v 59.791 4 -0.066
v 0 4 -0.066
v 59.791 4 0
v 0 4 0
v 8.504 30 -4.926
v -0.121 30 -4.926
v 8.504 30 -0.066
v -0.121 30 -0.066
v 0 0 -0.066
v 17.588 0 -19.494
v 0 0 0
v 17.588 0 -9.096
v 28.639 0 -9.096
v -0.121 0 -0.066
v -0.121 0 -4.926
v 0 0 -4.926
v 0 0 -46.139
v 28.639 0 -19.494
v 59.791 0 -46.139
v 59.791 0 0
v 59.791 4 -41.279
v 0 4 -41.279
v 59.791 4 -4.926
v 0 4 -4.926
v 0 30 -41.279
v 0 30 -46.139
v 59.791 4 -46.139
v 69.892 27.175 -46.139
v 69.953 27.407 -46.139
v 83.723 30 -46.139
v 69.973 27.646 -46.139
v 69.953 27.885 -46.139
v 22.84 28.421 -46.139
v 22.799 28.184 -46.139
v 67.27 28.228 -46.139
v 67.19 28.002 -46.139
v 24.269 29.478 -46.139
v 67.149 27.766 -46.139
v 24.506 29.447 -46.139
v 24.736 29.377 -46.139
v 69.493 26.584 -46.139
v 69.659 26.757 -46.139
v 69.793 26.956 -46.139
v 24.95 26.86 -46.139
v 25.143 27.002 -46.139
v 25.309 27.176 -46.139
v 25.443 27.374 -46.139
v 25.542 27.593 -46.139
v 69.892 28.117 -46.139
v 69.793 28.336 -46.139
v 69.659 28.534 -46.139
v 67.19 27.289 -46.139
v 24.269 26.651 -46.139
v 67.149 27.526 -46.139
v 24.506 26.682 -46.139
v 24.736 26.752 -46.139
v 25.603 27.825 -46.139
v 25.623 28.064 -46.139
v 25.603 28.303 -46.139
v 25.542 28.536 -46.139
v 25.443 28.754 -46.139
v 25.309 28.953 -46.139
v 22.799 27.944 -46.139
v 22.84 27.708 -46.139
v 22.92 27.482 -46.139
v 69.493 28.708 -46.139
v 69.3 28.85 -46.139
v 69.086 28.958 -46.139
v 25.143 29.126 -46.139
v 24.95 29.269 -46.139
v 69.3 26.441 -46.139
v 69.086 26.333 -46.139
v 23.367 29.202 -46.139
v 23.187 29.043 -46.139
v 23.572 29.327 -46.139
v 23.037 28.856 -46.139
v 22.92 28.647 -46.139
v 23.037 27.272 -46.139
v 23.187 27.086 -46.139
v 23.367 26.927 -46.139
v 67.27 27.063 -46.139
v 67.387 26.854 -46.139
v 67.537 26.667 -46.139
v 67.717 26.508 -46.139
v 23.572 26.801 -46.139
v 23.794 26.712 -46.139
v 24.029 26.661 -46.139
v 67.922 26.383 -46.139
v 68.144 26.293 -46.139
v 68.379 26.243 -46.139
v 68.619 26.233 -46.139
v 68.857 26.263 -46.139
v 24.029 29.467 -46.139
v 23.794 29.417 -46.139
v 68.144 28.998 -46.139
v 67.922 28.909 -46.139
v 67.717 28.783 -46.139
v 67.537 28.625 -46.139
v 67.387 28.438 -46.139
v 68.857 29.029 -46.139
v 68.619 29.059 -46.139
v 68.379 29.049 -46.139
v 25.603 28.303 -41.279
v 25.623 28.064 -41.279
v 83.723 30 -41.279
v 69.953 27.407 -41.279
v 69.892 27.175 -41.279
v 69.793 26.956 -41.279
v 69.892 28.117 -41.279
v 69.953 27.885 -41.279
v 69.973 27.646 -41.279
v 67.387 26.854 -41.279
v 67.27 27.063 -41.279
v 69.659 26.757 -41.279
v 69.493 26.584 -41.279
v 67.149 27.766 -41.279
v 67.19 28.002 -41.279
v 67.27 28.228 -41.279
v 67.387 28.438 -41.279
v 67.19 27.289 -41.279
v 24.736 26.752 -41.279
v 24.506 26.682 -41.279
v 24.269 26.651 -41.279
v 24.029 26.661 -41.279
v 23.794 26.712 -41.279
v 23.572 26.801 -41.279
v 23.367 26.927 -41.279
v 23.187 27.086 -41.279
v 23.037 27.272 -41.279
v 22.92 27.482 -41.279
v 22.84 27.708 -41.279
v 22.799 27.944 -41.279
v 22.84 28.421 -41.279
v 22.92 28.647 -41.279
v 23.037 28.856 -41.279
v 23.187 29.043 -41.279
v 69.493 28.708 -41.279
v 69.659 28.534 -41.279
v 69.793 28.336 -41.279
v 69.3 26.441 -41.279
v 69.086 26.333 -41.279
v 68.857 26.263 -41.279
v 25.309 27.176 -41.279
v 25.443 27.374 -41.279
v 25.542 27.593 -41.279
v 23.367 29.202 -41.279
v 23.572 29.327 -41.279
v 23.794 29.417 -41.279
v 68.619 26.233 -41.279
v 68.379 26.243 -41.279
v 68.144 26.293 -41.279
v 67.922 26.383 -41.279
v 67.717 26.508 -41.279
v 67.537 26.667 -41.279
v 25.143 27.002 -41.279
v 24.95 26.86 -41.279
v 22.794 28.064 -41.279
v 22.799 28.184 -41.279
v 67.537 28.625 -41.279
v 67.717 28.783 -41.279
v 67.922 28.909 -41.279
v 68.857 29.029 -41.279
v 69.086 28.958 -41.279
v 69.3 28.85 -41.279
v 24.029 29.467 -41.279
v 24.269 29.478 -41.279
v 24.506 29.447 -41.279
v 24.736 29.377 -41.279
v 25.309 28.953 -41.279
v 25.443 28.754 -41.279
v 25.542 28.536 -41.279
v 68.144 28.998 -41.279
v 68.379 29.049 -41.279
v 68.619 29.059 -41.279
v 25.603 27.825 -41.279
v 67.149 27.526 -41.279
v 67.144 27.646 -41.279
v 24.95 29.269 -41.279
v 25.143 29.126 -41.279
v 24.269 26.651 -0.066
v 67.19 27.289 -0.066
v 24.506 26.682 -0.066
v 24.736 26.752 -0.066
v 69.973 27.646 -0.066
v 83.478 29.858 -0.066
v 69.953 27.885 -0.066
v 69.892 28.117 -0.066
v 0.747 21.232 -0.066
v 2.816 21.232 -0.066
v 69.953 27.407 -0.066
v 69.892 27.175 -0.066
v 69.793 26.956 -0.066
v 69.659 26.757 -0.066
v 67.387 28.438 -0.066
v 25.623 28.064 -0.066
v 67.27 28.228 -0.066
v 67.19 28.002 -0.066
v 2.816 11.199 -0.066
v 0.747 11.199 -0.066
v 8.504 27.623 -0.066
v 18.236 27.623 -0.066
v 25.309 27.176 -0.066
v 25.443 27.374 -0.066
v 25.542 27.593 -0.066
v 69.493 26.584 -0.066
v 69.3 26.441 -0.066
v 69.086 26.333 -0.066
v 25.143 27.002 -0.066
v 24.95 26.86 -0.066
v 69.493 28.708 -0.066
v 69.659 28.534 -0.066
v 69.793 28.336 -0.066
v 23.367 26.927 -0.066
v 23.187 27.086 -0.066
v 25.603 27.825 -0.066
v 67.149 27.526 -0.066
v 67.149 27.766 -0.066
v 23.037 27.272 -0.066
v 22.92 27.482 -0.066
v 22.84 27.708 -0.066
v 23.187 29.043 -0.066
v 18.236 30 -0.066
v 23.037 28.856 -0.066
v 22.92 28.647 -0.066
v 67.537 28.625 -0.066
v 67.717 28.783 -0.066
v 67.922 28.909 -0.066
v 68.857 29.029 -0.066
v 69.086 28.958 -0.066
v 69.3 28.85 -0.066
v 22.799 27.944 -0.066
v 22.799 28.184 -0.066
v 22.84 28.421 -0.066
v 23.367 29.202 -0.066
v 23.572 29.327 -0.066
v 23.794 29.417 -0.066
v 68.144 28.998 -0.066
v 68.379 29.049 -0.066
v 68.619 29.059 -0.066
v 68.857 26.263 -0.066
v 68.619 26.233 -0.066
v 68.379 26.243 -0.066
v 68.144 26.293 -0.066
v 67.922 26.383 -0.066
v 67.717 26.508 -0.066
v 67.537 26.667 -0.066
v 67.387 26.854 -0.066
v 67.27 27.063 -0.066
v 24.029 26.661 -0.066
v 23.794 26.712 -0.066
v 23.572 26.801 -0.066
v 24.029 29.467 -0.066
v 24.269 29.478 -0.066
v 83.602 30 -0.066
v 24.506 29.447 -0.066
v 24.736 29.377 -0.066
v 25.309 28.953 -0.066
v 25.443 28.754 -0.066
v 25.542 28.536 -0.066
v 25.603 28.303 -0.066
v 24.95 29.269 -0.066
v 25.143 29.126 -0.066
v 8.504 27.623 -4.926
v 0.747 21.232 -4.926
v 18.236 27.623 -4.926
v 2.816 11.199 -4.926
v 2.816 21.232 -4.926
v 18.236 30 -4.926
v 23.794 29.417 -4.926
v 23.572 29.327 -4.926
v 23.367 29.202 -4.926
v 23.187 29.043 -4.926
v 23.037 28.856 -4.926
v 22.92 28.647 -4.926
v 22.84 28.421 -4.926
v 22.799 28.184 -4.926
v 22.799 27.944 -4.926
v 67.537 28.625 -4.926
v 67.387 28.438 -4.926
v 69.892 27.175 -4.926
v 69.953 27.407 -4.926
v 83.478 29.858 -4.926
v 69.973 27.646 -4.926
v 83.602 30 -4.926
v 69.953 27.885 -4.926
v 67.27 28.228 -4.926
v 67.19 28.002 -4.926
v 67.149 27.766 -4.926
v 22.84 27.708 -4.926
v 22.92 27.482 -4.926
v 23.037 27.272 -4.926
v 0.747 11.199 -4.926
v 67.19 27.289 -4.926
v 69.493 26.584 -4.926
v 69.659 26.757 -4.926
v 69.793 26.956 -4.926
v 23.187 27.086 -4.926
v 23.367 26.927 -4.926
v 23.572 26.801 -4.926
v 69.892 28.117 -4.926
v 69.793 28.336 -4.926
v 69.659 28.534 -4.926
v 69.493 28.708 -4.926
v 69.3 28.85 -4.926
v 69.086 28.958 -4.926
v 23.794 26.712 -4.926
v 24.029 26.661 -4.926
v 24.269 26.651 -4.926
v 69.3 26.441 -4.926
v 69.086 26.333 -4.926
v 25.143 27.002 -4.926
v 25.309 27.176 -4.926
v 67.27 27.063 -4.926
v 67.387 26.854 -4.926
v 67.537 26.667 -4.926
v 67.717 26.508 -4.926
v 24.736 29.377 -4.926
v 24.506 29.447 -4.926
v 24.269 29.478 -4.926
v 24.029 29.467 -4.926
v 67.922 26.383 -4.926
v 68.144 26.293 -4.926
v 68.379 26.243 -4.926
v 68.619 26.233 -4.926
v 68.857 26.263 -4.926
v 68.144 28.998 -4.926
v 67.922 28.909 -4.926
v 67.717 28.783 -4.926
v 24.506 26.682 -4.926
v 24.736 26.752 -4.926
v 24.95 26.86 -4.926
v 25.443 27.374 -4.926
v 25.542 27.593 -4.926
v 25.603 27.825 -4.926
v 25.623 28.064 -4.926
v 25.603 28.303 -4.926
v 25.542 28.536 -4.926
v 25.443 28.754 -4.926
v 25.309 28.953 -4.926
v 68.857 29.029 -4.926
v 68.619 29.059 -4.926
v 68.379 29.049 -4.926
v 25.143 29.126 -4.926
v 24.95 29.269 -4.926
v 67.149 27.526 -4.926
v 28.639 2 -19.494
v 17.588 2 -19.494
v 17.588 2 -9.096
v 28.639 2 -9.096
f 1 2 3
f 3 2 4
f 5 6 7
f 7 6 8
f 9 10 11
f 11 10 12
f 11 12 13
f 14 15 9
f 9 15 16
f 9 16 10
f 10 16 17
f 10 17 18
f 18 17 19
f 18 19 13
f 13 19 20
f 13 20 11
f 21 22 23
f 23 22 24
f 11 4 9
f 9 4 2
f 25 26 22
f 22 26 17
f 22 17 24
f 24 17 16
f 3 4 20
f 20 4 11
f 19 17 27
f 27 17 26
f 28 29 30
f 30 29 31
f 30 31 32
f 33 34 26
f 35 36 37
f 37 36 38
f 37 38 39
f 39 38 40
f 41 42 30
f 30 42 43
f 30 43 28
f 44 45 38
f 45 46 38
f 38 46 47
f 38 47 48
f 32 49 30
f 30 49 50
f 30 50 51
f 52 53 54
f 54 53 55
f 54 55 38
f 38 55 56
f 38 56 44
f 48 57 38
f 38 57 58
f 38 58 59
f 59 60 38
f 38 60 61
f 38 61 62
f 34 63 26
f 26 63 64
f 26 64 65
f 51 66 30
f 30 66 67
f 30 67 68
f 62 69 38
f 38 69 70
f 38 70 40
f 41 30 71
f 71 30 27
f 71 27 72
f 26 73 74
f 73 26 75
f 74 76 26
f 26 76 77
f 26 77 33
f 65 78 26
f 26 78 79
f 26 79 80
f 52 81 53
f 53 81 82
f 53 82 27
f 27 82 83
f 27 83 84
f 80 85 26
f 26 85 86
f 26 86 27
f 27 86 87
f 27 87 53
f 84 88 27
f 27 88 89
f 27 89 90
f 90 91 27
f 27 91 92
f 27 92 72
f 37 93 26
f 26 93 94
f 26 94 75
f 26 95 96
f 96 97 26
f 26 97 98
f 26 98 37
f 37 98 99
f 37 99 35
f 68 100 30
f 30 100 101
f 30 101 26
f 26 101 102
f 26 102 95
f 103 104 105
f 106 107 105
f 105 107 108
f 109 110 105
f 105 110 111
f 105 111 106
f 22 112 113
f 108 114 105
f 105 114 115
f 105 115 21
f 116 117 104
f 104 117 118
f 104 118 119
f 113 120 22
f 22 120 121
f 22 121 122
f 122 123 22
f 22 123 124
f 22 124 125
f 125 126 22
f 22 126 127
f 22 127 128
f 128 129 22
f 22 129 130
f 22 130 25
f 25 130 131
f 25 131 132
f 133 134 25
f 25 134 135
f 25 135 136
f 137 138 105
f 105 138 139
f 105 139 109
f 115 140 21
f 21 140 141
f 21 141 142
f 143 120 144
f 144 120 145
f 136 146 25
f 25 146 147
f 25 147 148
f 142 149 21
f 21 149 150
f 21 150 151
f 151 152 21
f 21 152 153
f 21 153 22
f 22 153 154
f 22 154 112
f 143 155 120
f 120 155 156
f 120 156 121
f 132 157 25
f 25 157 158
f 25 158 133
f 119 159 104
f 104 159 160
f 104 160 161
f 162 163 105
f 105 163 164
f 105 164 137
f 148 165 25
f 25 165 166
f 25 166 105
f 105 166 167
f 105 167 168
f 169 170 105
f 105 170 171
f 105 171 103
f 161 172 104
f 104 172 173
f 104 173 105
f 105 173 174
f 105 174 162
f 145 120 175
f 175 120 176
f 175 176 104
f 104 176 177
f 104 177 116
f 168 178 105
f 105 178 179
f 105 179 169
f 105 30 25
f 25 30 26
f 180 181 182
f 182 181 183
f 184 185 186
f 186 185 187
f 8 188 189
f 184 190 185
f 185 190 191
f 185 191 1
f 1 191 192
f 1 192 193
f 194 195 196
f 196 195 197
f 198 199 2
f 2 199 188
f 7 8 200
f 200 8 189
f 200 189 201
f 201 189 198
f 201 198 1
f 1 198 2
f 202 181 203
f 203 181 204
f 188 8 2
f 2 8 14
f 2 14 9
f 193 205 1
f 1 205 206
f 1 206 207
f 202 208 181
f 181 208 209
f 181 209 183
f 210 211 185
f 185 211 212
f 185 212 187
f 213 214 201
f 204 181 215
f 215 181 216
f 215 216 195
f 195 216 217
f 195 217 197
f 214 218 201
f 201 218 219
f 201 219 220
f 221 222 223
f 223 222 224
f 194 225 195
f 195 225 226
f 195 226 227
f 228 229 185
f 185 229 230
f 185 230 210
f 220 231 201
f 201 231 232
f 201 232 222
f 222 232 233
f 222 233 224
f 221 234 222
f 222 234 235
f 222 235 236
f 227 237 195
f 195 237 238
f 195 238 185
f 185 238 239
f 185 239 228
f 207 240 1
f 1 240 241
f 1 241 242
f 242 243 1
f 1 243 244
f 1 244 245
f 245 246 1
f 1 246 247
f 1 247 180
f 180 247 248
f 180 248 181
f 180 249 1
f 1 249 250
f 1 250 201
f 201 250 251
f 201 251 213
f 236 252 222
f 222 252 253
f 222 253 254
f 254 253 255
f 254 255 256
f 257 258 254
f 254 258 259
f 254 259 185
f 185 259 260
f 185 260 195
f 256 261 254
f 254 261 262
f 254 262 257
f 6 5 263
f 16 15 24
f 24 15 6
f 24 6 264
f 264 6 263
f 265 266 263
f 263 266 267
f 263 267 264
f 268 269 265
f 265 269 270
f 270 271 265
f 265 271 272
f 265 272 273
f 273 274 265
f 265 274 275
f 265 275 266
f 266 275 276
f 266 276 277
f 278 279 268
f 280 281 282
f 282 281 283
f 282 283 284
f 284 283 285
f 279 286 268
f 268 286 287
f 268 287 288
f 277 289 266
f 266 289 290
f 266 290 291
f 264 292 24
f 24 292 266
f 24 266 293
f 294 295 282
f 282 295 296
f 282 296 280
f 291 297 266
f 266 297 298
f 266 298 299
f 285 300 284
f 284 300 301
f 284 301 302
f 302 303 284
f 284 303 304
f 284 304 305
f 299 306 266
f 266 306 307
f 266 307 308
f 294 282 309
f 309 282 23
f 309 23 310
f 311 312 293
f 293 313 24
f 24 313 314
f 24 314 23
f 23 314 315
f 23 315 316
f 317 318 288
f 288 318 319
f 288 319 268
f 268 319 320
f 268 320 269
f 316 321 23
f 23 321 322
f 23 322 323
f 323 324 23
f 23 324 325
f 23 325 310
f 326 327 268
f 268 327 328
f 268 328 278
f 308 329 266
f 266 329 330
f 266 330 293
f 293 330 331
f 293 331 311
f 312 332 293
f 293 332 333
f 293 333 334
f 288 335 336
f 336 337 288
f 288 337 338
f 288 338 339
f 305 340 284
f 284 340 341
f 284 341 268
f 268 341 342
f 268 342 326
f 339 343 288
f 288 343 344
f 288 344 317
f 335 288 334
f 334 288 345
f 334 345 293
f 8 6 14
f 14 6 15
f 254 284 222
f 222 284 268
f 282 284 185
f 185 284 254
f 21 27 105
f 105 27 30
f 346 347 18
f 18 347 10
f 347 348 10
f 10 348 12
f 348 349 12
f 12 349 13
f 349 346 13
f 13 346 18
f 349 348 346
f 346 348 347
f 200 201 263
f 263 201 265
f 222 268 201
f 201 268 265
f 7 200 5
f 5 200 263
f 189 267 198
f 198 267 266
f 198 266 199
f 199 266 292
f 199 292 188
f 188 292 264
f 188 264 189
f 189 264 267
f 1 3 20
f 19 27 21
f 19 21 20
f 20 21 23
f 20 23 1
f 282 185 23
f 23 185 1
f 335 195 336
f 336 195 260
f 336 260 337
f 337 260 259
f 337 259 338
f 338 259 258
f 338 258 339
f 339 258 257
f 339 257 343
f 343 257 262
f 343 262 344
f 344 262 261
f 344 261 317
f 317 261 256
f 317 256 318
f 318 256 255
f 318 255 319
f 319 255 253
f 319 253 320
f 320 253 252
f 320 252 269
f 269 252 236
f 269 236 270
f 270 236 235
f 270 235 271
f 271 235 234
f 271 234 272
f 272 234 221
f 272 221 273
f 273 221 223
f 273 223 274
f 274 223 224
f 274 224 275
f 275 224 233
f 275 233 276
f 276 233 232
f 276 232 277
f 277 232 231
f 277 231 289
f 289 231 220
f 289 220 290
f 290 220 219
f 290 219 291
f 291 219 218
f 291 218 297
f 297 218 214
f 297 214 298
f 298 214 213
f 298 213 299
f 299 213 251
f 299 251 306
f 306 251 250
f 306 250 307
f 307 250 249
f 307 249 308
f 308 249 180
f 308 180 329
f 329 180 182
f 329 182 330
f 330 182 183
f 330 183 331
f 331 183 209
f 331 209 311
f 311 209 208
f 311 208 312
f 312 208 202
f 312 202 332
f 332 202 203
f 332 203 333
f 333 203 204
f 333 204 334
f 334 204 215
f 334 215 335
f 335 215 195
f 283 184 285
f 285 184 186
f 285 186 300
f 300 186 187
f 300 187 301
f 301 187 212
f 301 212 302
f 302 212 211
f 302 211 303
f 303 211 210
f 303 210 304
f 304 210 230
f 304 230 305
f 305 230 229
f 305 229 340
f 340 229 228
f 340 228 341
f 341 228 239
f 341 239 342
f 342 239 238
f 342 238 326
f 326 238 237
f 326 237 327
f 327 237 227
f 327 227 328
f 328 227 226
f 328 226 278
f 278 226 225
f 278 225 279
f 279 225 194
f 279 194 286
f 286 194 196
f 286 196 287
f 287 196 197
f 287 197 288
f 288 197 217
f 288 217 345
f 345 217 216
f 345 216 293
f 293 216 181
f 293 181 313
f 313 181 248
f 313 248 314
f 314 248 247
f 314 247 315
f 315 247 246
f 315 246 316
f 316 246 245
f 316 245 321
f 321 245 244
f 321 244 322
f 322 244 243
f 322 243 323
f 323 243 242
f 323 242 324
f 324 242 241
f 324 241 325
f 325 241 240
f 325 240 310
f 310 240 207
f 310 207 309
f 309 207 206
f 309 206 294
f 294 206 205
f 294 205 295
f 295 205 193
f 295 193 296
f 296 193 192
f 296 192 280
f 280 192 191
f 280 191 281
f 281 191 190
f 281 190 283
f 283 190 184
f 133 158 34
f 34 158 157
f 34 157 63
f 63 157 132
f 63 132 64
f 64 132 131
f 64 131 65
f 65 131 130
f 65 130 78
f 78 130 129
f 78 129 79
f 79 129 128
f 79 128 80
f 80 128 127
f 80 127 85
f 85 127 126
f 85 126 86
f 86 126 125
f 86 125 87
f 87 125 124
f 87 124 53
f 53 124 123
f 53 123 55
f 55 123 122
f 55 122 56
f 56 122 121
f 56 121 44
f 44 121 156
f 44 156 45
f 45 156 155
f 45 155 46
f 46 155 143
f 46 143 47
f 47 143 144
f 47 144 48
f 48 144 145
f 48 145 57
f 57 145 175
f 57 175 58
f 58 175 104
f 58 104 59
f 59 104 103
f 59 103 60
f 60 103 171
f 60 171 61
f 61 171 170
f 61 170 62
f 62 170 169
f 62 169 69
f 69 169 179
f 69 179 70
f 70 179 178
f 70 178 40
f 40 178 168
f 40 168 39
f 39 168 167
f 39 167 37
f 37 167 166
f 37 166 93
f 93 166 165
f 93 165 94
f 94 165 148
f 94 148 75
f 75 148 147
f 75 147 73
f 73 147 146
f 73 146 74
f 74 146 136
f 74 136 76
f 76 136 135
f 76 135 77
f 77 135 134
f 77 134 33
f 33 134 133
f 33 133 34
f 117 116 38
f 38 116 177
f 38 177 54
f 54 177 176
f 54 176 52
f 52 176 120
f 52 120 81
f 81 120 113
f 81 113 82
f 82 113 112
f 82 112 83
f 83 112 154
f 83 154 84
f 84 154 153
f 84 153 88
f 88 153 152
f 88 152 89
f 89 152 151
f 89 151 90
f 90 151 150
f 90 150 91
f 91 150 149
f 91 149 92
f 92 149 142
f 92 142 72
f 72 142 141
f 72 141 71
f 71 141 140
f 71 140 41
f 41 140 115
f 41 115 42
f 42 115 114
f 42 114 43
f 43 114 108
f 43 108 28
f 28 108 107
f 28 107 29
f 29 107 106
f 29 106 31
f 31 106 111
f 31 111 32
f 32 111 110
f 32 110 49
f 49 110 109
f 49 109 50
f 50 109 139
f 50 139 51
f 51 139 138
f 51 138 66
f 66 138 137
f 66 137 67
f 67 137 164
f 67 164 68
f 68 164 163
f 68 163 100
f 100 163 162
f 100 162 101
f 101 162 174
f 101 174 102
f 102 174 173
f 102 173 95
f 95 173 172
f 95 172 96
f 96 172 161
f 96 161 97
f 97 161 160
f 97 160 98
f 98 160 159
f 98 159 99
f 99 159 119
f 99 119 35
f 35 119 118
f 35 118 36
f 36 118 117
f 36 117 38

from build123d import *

# Parameters (mm, degrees)
SKETCH1_W           = 83.722982013
SKETCH1_H           = 46.138643349
BOSS_EXTRUDE1_DEPTH = 4
SKETCH2_W           = 83.722982013
SKETCH2_H           = 4.859440563
BOSS_EXTRUDE2_DEPTH = 30
CUT_EXTRUDE10_DEPTH = 18
CUT_EXTRUDE11_DEPTH = 18
SKETCH7_W           = 22.745855452
SKETCH7_H           = 4
CUT_EXTRUDE14_DEPTH = 54
SKETCH8_W           = 11.05148618
SKETCH8_H           = 10.398194851
CUT_EXTRUDE15_DEPTH = 2
SKETCH9_W           = 9.731504247
SKETCH9_H           = 2.37712486
CUT_EXTRUDE16_DEPTH = 8
SKETCH10_W          = 2.06895071
SKETCH10_H          = 10.033558555
CUT_EXTRUDE17_DEPTH = 8
SKETCH11_W          = 1.186464173
SKETCH11_H          = 4
CUT_EXTRUDE18_DEPTH = 47
CUT_EXTRUDE19_DEPTH = 47
SKETCH13_R          = 1.414529115
CUT_EXTRUDE20_DEPTH = 58


with BuildPart() as part:
    # Sketch1 → Boss-Extrude1 (new body)
    with BuildSketch(Plane(origin=(0, 0, 0), x_dir=(1, 0, 0), z_dir=(0, 1, 0))):
        with Locations((41.861491007, 23.069321675)):
            Rectangle(SKETCH1_W, SKETCH1_H)
    extrude(amount=BOSS_EXTRUDE1_DEPTH)

    # Sketch2 → Boss-Extrude2 (add)
    with BuildSketch(Plane(origin=(0, 0, 0), x_dir=(1, 0, 0), z_dir=(0, 1, 0))):
        with Locations((41.861491007, 43.708923068)):
            Rectangle(SKETCH2_W, SKETCH2_H)
        with Locations((41.740293795, 2.496094928)):
            Rectangle(SKETCH2_W, SKETCH2_H)
    extrude(amount=BOSS_EXTRUDE2_DEPTH)

    # Sketch3 → Cut-Extrude10 (cut)
    with BuildSketch(Plane.XY.offset(-0.066374646)):
        Polygon((83.601784801, 30), (83.601784801, 4), (60.885327478, 4), align=None)
    extrude(amount=-CUT_EXTRUDE10_DEPTH, mode=Mode.SUBTRACT)

    # Sketch6 → Cut-Extrude11 (cut)
    with BuildSketch(Plane.XY.offset(-41.279202786)):
        Polygon((83.722982013, 30), (59.790662388, 4), (83.722982013, 4), align=None)
    extrude(amount=-CUT_EXTRUDE11_DEPTH, mode=Mode.SUBTRACT)

    # Sketch7 → Cut-Extrude14 (cut)
    with BuildSketch(Plane.XY):
        with Locations((72.350054287, 2)):
            Rectangle(SKETCH7_W, SKETCH7_H)
    extrude(amount=-CUT_EXTRUDE14_DEPTH, mode=Mode.SUBTRACT)

    # Sketch8 → Cut-Extrude15 (cut)
    with BuildSketch(Plane.XZ):
        with Locations((23.113449186, -14.294853075)):
            Rectangle(SKETCH8_W, SKETCH8_H)
    extrude(amount=-CUT_EXTRUDE15_DEPTH, mode=Mode.SUBTRACT)

    # Sketch9 → Cut-Extrude16 (cut)
    with BuildSketch(Plane.XY.offset(-0.066374646)):
        with Locations((13.369827145, 28.81143757)):
            Rectangle(SKETCH9_W, SKETCH9_H)
    extrude(amount=-CUT_EXTRUDE16_DEPTH, mode=Mode.SUBTRACT)

    # Sketch10 → Cut-Extrude17 (cut)
    with BuildSketch(Plane.XY.offset(-0.066374646)):
        with Locations((1.781804149, 16.215704525)):
            Rectangle(SKETCH10_W, SKETCH10_H)
    extrude(amount=-CUT_EXTRUDE17_DEPTH, mode=Mode.SUBTRACT)

    # Sketch11 → Cut-Extrude18 (cut)
    with BuildSketch(Plane(origin=(0, 0, -46.138643349), x_dir=(-1, 0, 0), z_dir=(0, 0, -1))):
        with Locations((-60.383894475, 2)):
            Rectangle(SKETCH11_W, SKETCH11_H)
    extrude(amount=-CUT_EXTRUDE18_DEPTH, mode=Mode.SUBTRACT)

    # Sketch12 → Cut-Extrude19 (cut)
    with BuildSketch(Plane(origin=(0, 0, -4.925815209), x_dir=(-1, 0, 0), z_dir=(0, 0, -1))):
        Polygon((-59.790662388, 4), (-83.478150153, 29.858494623), (-60.885327478, 4), align=None)
    extrude(amount=-CUT_EXTRUDE19_DEPTH, mode=Mode.SUBTRACT)

    # Sketch13 → Cut-Extrude20 (cut)
    with BuildSketch(Plane.XY.offset(-0.066374646)):
        with Locations((68.55855115, 27.64576808)):
            Circle(SKETCH13_R)
        with Locations((24.208487852, 28.064292507)):
            Circle(SKETCH13_R)
    extrude(amount=-CUT_EXTRUDE20_DEPTH, mode=Mode.SUBTRACT)


solid = part.part
